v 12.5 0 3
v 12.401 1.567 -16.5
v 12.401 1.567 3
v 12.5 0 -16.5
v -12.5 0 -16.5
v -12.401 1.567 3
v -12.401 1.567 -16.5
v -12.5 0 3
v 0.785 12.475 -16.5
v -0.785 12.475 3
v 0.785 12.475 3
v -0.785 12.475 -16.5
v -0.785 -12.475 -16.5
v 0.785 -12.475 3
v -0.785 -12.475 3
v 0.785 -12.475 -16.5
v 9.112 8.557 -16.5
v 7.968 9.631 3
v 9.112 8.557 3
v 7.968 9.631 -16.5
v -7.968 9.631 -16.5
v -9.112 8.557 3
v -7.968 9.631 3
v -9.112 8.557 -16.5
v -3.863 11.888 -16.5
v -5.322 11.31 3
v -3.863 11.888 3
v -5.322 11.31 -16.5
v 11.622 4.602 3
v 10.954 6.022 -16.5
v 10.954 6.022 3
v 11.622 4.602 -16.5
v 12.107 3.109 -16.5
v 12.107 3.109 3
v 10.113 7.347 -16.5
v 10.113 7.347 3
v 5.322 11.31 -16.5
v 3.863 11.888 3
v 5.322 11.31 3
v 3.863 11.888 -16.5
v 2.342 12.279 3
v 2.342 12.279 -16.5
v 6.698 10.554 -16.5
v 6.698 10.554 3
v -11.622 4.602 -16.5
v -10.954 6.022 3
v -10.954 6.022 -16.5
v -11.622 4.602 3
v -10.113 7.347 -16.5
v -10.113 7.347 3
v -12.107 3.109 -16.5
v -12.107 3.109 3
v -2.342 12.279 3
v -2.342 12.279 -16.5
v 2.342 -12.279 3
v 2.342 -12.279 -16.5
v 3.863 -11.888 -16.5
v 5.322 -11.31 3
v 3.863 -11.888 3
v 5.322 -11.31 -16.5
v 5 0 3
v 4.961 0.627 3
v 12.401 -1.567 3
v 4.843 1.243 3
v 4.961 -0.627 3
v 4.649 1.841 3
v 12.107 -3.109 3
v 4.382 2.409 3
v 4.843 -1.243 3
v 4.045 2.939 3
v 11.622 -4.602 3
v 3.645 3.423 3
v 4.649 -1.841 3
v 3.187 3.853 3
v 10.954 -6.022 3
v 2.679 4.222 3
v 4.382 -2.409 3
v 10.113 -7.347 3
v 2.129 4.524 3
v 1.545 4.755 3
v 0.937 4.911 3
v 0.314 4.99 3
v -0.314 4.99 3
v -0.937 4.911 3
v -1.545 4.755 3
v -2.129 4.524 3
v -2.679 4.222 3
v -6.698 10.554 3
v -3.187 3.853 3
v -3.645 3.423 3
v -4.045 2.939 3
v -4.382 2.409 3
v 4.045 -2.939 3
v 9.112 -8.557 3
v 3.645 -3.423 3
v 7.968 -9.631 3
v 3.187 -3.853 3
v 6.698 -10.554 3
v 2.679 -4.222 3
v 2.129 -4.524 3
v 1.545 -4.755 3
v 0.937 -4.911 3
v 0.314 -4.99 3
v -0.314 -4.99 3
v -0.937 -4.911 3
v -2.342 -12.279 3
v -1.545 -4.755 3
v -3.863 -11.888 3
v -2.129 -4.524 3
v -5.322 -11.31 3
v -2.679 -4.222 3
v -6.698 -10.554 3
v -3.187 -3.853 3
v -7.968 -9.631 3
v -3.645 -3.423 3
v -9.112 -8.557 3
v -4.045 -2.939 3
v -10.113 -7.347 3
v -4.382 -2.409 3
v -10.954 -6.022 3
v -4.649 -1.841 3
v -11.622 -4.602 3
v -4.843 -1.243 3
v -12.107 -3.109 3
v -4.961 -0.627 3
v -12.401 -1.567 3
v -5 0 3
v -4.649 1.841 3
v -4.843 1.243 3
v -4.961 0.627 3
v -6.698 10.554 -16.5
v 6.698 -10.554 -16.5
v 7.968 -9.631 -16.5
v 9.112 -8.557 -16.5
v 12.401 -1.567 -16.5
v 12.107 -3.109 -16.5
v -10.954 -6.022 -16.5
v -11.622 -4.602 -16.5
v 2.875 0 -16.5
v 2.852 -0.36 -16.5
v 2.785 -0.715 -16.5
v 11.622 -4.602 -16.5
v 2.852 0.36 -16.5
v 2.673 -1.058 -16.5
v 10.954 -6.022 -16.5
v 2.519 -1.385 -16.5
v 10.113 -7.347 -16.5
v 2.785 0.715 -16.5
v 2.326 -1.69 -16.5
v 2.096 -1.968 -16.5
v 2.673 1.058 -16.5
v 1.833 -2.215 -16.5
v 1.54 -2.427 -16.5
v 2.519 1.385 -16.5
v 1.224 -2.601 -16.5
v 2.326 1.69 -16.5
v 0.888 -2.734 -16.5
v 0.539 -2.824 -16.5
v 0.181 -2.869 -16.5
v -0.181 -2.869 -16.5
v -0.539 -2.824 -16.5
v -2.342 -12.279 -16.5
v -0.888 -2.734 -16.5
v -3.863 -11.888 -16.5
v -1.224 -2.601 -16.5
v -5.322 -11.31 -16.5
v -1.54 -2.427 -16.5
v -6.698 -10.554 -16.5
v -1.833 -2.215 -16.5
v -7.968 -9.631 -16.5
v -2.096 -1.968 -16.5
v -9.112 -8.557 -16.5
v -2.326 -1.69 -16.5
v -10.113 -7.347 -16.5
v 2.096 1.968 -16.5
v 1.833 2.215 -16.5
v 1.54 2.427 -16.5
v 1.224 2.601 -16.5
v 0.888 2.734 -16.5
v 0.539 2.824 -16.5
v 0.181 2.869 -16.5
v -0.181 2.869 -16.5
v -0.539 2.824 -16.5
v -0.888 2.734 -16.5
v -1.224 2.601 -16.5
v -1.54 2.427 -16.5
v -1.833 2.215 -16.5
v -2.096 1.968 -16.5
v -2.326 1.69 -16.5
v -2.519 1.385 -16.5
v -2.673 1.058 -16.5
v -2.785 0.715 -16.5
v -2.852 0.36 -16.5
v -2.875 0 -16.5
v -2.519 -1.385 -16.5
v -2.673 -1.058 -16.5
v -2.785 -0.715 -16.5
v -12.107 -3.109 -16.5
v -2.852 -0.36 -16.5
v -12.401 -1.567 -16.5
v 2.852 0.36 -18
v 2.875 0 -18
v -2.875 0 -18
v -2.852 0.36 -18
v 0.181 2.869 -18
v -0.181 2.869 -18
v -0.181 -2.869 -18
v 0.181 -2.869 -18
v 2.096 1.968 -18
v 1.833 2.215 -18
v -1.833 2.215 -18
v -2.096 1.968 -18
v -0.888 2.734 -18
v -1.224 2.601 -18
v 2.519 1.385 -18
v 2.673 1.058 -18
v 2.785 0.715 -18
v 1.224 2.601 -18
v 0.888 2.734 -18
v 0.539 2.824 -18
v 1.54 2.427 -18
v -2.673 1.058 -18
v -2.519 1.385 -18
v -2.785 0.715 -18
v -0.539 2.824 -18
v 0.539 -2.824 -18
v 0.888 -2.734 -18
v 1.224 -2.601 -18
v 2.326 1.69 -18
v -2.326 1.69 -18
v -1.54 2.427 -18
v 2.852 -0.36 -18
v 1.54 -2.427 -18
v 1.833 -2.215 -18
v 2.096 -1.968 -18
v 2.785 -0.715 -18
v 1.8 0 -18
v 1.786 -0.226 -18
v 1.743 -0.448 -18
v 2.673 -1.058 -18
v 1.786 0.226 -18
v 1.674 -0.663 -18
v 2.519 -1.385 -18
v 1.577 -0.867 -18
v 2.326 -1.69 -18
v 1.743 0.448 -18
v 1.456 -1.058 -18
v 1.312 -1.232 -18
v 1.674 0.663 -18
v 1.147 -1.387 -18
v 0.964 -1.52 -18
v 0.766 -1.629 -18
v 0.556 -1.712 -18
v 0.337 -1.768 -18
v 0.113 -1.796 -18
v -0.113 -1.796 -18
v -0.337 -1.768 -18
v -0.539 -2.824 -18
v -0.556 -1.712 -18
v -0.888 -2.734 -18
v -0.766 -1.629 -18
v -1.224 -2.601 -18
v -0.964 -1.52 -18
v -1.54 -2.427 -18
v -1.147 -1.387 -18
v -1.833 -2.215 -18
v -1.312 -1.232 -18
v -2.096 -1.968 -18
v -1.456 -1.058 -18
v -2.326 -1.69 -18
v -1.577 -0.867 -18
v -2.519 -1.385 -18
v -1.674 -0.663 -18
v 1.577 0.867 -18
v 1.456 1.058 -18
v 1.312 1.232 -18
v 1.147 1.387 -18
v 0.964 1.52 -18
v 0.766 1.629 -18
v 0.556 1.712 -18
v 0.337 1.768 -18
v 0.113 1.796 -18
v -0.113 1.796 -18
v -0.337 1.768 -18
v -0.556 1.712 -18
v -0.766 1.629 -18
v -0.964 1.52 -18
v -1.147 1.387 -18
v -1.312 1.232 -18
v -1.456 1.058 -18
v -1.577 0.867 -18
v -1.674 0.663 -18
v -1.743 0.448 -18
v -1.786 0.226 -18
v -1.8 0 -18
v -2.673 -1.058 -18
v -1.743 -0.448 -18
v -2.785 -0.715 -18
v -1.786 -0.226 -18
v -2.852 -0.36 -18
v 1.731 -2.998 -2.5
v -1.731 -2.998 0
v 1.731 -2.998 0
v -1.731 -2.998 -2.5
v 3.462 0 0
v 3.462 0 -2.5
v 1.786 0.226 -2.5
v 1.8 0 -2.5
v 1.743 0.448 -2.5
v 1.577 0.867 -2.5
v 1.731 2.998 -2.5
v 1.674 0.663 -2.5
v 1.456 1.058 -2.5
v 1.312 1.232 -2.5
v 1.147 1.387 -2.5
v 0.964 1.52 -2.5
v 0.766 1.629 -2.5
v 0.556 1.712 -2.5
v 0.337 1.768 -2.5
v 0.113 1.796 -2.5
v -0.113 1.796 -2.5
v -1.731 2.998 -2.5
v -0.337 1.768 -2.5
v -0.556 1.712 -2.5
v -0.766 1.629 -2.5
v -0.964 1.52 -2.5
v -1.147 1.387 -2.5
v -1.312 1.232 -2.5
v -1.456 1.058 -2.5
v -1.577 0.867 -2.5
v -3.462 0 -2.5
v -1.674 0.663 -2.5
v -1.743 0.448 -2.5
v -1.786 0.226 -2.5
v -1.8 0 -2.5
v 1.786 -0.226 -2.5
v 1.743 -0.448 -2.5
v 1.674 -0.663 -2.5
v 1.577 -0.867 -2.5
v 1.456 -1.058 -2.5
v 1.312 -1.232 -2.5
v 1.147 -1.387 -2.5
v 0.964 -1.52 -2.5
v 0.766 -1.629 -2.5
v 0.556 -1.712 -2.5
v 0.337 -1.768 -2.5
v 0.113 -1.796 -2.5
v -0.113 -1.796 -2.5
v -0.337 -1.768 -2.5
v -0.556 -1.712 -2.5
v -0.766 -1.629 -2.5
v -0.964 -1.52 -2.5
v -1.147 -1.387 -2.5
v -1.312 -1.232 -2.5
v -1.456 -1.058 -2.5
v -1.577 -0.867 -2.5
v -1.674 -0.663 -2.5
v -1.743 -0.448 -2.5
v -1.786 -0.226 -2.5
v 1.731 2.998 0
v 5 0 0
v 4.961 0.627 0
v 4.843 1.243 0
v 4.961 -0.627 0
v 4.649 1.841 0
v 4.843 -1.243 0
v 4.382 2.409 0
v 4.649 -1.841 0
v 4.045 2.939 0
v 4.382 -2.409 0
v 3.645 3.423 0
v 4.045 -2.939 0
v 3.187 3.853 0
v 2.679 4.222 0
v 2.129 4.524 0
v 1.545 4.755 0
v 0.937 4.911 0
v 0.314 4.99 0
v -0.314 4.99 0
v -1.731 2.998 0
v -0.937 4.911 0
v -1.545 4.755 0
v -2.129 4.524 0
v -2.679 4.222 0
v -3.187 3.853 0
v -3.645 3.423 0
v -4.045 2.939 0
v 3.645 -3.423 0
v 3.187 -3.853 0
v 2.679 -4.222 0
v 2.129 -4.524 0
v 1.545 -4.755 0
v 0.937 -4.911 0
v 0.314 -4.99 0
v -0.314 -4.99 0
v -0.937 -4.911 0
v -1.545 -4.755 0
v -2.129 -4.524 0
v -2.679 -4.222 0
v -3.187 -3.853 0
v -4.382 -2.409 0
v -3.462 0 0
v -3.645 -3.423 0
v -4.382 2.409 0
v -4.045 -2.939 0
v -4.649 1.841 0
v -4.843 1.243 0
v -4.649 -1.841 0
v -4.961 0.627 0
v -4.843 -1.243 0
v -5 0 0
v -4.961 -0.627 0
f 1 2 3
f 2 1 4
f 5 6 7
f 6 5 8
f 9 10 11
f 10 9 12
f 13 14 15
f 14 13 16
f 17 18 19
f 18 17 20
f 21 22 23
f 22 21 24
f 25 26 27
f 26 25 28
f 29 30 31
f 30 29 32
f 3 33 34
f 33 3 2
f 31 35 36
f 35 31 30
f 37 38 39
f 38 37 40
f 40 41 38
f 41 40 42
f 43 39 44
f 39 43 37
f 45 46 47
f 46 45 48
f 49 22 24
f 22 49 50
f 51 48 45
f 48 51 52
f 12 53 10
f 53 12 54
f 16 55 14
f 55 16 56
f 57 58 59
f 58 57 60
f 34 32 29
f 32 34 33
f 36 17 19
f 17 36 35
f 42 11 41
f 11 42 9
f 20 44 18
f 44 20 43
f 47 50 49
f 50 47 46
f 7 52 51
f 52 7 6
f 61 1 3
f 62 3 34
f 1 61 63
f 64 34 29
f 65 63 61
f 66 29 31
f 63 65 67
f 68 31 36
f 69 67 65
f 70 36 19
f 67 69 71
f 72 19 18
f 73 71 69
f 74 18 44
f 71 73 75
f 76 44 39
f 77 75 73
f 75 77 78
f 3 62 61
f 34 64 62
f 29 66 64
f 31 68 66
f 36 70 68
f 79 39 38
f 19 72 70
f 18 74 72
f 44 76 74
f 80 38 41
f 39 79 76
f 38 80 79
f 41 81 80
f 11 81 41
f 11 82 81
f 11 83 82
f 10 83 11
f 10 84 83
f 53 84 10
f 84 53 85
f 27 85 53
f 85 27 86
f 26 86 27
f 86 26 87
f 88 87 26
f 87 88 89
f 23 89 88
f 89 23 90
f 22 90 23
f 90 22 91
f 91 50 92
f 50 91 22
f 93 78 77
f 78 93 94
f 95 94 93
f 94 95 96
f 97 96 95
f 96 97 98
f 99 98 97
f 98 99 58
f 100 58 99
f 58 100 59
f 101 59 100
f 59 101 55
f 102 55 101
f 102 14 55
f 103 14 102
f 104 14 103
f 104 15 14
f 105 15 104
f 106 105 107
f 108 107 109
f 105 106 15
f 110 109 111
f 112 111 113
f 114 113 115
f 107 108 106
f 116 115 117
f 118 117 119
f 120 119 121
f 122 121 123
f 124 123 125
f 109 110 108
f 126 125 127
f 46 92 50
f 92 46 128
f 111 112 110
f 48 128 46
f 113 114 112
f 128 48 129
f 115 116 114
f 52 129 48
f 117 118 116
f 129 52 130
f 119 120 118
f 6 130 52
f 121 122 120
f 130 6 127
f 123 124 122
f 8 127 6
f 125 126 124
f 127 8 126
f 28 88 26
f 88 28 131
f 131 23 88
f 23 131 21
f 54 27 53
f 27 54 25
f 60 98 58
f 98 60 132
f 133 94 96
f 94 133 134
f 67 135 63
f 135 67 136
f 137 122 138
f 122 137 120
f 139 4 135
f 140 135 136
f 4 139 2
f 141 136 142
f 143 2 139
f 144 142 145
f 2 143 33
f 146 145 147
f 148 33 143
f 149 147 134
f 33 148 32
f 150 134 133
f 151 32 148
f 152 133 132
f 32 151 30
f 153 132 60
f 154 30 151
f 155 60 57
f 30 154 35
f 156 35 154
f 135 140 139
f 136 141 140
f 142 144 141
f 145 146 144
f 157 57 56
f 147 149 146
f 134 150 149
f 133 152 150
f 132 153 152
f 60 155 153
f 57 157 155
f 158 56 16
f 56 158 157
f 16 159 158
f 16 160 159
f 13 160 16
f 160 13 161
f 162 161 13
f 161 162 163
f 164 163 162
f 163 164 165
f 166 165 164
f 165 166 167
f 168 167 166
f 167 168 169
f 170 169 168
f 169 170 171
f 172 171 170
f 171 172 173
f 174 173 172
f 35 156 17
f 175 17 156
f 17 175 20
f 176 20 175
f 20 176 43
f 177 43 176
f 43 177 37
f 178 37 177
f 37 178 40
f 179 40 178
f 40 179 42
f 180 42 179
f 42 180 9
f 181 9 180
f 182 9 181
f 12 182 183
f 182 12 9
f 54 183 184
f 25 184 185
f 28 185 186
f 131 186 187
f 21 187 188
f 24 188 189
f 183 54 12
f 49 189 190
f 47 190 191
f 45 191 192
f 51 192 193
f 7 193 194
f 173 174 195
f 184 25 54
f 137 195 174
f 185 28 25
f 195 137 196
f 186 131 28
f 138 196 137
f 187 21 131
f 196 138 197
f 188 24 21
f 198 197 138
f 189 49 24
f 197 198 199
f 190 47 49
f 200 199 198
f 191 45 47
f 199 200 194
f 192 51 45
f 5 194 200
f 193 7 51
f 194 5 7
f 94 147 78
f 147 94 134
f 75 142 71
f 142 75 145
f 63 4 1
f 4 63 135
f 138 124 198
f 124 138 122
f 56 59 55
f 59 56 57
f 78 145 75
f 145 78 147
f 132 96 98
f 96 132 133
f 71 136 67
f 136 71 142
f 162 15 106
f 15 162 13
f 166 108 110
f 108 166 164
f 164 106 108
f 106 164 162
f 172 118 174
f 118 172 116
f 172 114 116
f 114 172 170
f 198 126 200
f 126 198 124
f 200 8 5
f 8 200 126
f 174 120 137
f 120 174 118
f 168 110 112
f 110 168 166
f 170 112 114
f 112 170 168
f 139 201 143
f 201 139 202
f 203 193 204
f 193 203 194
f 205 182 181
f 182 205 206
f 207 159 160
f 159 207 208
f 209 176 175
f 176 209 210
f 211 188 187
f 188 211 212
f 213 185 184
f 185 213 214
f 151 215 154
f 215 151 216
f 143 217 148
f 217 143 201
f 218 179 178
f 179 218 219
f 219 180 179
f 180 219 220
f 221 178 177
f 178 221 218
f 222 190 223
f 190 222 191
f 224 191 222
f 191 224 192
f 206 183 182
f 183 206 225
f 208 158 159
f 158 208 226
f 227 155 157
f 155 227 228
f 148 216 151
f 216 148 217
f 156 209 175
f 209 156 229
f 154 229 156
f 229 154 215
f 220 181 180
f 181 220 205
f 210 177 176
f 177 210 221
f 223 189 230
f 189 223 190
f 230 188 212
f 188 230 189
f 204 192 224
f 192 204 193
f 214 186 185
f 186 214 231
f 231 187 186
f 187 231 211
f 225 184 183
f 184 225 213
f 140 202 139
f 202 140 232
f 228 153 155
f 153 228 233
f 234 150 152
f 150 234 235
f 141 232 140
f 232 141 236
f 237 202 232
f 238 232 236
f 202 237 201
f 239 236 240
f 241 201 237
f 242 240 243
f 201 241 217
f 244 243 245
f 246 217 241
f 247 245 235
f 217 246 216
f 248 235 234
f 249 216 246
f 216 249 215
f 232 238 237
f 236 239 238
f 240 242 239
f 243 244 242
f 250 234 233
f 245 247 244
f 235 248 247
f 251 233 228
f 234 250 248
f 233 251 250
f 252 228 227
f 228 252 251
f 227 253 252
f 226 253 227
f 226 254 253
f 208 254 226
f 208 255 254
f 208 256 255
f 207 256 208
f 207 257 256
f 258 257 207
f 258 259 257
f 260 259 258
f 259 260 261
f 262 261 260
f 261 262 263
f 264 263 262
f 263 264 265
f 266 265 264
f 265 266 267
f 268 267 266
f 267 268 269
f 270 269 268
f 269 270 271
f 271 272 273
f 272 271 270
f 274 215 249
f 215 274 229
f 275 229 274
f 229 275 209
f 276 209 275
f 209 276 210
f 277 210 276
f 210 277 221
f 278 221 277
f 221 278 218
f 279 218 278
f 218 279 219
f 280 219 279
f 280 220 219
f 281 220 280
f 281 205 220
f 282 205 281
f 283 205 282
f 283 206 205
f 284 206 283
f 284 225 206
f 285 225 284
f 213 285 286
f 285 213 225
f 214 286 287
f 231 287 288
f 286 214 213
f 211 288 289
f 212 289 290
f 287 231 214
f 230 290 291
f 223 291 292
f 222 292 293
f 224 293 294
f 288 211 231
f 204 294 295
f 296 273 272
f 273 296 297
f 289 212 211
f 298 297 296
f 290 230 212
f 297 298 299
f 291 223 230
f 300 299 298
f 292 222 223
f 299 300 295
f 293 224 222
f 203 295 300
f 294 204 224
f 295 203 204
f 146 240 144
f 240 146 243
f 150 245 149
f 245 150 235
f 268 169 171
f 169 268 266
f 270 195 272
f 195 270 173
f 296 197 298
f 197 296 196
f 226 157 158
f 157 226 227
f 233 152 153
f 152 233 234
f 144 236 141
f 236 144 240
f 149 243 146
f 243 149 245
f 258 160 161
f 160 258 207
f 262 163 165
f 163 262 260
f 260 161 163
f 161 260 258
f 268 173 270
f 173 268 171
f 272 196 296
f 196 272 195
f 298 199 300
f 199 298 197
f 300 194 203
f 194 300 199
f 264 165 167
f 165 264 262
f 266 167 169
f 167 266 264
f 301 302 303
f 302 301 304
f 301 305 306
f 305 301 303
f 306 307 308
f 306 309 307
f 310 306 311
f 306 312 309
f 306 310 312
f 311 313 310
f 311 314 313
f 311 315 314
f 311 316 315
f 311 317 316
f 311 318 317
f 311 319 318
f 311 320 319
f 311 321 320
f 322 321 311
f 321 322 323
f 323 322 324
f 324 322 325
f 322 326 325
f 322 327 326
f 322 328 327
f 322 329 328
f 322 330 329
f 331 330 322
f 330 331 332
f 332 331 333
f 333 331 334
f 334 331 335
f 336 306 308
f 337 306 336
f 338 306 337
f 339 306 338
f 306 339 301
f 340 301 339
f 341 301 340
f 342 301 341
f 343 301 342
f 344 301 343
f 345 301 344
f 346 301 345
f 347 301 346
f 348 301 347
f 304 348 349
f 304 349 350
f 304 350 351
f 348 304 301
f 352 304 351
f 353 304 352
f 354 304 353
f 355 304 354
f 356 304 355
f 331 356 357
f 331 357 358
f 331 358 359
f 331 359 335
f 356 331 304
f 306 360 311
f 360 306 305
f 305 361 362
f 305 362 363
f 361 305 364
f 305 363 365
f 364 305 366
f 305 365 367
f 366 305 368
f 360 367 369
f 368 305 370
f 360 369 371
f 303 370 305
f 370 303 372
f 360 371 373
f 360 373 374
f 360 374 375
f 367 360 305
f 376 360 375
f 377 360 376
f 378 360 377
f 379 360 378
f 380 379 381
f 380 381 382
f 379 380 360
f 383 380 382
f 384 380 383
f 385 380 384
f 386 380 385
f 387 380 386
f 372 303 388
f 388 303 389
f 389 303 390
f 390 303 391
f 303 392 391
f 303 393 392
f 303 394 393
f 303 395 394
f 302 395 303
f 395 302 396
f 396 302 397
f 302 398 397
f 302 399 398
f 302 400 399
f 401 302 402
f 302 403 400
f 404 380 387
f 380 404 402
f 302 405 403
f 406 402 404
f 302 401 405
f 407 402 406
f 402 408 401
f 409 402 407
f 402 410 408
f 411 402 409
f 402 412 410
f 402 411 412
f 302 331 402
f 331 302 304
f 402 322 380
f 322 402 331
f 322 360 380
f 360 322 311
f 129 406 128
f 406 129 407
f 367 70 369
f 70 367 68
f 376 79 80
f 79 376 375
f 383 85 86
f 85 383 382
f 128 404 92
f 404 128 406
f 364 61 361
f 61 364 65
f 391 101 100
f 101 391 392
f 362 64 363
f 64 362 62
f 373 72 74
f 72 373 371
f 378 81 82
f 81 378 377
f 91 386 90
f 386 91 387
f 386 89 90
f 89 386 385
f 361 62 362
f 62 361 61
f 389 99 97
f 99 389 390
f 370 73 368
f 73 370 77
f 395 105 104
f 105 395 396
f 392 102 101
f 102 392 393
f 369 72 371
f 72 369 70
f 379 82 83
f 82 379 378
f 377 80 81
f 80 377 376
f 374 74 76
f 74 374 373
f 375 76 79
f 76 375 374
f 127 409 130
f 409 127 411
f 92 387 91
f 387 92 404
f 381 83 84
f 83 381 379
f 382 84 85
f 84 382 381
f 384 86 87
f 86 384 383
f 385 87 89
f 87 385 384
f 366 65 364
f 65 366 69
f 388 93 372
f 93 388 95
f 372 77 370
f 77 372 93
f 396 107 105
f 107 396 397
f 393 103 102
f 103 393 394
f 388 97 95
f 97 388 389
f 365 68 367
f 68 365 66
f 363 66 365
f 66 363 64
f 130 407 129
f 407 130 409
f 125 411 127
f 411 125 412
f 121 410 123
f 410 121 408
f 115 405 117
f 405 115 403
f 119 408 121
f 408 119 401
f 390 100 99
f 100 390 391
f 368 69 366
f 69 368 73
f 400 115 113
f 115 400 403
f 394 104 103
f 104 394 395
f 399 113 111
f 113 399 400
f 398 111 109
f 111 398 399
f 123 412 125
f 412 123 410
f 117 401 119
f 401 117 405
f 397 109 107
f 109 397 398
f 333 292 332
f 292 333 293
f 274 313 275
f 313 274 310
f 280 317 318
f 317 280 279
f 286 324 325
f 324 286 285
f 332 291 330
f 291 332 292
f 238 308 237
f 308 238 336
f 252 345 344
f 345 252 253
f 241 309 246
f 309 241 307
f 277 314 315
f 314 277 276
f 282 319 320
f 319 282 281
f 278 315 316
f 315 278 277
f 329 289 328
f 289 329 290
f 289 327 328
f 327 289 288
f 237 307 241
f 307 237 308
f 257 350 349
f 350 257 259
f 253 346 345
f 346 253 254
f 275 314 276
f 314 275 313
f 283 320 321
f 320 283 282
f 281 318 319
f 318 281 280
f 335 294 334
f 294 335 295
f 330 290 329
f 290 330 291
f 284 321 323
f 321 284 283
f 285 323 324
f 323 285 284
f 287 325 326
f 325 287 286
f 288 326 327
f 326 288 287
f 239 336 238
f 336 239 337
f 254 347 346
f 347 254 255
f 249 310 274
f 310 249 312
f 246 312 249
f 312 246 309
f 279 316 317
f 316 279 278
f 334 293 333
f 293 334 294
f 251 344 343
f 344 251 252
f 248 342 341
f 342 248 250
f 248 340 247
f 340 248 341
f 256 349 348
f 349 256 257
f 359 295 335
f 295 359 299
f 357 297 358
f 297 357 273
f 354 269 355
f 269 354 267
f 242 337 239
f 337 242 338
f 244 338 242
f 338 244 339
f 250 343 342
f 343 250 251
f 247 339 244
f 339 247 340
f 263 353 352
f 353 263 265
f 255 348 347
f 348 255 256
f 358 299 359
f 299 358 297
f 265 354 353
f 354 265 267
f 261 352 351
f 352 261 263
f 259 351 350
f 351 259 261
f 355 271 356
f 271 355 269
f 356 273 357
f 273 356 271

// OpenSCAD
$fn = 50;

difference() {
	union() {
		translate(v = [0, 0, -16.5]) {
			cylinder(h = 19.5, r = 12.5);
		}
		#translate(v = [0, 0, -18.0]) {
			cylinder(h = 18, r = 2.875);
		}
	}
	union() {
		translate(v = [0, 0, 0]) {
			rotate(a = [0, 0, 0]) {
				difference() {
					union() {
						translate(v = [0, 0, -2.5]) {
							linear_extrude(height = 2.5) {
								polygon(points = [[3.4619999999999997, 0.0], [1.7310000000000003, 2.9981799479017264], [-1.7309999999999992, 2.9981799479017264], [-3.4619999999999997, 4.2397272186481365e-16], [-1.7310000000000014, -2.998179947901726], [1.7309999999999977, -2.9981799479017277]]);
							}
						}
					}
					union();
				}
			}
		}
		#cylinder(h = 3, r = 5.0);
		#translate(v = [0, 0, -100.0]) {
			cylinder(h = 200, r = 1.8);
		}
	}
}
